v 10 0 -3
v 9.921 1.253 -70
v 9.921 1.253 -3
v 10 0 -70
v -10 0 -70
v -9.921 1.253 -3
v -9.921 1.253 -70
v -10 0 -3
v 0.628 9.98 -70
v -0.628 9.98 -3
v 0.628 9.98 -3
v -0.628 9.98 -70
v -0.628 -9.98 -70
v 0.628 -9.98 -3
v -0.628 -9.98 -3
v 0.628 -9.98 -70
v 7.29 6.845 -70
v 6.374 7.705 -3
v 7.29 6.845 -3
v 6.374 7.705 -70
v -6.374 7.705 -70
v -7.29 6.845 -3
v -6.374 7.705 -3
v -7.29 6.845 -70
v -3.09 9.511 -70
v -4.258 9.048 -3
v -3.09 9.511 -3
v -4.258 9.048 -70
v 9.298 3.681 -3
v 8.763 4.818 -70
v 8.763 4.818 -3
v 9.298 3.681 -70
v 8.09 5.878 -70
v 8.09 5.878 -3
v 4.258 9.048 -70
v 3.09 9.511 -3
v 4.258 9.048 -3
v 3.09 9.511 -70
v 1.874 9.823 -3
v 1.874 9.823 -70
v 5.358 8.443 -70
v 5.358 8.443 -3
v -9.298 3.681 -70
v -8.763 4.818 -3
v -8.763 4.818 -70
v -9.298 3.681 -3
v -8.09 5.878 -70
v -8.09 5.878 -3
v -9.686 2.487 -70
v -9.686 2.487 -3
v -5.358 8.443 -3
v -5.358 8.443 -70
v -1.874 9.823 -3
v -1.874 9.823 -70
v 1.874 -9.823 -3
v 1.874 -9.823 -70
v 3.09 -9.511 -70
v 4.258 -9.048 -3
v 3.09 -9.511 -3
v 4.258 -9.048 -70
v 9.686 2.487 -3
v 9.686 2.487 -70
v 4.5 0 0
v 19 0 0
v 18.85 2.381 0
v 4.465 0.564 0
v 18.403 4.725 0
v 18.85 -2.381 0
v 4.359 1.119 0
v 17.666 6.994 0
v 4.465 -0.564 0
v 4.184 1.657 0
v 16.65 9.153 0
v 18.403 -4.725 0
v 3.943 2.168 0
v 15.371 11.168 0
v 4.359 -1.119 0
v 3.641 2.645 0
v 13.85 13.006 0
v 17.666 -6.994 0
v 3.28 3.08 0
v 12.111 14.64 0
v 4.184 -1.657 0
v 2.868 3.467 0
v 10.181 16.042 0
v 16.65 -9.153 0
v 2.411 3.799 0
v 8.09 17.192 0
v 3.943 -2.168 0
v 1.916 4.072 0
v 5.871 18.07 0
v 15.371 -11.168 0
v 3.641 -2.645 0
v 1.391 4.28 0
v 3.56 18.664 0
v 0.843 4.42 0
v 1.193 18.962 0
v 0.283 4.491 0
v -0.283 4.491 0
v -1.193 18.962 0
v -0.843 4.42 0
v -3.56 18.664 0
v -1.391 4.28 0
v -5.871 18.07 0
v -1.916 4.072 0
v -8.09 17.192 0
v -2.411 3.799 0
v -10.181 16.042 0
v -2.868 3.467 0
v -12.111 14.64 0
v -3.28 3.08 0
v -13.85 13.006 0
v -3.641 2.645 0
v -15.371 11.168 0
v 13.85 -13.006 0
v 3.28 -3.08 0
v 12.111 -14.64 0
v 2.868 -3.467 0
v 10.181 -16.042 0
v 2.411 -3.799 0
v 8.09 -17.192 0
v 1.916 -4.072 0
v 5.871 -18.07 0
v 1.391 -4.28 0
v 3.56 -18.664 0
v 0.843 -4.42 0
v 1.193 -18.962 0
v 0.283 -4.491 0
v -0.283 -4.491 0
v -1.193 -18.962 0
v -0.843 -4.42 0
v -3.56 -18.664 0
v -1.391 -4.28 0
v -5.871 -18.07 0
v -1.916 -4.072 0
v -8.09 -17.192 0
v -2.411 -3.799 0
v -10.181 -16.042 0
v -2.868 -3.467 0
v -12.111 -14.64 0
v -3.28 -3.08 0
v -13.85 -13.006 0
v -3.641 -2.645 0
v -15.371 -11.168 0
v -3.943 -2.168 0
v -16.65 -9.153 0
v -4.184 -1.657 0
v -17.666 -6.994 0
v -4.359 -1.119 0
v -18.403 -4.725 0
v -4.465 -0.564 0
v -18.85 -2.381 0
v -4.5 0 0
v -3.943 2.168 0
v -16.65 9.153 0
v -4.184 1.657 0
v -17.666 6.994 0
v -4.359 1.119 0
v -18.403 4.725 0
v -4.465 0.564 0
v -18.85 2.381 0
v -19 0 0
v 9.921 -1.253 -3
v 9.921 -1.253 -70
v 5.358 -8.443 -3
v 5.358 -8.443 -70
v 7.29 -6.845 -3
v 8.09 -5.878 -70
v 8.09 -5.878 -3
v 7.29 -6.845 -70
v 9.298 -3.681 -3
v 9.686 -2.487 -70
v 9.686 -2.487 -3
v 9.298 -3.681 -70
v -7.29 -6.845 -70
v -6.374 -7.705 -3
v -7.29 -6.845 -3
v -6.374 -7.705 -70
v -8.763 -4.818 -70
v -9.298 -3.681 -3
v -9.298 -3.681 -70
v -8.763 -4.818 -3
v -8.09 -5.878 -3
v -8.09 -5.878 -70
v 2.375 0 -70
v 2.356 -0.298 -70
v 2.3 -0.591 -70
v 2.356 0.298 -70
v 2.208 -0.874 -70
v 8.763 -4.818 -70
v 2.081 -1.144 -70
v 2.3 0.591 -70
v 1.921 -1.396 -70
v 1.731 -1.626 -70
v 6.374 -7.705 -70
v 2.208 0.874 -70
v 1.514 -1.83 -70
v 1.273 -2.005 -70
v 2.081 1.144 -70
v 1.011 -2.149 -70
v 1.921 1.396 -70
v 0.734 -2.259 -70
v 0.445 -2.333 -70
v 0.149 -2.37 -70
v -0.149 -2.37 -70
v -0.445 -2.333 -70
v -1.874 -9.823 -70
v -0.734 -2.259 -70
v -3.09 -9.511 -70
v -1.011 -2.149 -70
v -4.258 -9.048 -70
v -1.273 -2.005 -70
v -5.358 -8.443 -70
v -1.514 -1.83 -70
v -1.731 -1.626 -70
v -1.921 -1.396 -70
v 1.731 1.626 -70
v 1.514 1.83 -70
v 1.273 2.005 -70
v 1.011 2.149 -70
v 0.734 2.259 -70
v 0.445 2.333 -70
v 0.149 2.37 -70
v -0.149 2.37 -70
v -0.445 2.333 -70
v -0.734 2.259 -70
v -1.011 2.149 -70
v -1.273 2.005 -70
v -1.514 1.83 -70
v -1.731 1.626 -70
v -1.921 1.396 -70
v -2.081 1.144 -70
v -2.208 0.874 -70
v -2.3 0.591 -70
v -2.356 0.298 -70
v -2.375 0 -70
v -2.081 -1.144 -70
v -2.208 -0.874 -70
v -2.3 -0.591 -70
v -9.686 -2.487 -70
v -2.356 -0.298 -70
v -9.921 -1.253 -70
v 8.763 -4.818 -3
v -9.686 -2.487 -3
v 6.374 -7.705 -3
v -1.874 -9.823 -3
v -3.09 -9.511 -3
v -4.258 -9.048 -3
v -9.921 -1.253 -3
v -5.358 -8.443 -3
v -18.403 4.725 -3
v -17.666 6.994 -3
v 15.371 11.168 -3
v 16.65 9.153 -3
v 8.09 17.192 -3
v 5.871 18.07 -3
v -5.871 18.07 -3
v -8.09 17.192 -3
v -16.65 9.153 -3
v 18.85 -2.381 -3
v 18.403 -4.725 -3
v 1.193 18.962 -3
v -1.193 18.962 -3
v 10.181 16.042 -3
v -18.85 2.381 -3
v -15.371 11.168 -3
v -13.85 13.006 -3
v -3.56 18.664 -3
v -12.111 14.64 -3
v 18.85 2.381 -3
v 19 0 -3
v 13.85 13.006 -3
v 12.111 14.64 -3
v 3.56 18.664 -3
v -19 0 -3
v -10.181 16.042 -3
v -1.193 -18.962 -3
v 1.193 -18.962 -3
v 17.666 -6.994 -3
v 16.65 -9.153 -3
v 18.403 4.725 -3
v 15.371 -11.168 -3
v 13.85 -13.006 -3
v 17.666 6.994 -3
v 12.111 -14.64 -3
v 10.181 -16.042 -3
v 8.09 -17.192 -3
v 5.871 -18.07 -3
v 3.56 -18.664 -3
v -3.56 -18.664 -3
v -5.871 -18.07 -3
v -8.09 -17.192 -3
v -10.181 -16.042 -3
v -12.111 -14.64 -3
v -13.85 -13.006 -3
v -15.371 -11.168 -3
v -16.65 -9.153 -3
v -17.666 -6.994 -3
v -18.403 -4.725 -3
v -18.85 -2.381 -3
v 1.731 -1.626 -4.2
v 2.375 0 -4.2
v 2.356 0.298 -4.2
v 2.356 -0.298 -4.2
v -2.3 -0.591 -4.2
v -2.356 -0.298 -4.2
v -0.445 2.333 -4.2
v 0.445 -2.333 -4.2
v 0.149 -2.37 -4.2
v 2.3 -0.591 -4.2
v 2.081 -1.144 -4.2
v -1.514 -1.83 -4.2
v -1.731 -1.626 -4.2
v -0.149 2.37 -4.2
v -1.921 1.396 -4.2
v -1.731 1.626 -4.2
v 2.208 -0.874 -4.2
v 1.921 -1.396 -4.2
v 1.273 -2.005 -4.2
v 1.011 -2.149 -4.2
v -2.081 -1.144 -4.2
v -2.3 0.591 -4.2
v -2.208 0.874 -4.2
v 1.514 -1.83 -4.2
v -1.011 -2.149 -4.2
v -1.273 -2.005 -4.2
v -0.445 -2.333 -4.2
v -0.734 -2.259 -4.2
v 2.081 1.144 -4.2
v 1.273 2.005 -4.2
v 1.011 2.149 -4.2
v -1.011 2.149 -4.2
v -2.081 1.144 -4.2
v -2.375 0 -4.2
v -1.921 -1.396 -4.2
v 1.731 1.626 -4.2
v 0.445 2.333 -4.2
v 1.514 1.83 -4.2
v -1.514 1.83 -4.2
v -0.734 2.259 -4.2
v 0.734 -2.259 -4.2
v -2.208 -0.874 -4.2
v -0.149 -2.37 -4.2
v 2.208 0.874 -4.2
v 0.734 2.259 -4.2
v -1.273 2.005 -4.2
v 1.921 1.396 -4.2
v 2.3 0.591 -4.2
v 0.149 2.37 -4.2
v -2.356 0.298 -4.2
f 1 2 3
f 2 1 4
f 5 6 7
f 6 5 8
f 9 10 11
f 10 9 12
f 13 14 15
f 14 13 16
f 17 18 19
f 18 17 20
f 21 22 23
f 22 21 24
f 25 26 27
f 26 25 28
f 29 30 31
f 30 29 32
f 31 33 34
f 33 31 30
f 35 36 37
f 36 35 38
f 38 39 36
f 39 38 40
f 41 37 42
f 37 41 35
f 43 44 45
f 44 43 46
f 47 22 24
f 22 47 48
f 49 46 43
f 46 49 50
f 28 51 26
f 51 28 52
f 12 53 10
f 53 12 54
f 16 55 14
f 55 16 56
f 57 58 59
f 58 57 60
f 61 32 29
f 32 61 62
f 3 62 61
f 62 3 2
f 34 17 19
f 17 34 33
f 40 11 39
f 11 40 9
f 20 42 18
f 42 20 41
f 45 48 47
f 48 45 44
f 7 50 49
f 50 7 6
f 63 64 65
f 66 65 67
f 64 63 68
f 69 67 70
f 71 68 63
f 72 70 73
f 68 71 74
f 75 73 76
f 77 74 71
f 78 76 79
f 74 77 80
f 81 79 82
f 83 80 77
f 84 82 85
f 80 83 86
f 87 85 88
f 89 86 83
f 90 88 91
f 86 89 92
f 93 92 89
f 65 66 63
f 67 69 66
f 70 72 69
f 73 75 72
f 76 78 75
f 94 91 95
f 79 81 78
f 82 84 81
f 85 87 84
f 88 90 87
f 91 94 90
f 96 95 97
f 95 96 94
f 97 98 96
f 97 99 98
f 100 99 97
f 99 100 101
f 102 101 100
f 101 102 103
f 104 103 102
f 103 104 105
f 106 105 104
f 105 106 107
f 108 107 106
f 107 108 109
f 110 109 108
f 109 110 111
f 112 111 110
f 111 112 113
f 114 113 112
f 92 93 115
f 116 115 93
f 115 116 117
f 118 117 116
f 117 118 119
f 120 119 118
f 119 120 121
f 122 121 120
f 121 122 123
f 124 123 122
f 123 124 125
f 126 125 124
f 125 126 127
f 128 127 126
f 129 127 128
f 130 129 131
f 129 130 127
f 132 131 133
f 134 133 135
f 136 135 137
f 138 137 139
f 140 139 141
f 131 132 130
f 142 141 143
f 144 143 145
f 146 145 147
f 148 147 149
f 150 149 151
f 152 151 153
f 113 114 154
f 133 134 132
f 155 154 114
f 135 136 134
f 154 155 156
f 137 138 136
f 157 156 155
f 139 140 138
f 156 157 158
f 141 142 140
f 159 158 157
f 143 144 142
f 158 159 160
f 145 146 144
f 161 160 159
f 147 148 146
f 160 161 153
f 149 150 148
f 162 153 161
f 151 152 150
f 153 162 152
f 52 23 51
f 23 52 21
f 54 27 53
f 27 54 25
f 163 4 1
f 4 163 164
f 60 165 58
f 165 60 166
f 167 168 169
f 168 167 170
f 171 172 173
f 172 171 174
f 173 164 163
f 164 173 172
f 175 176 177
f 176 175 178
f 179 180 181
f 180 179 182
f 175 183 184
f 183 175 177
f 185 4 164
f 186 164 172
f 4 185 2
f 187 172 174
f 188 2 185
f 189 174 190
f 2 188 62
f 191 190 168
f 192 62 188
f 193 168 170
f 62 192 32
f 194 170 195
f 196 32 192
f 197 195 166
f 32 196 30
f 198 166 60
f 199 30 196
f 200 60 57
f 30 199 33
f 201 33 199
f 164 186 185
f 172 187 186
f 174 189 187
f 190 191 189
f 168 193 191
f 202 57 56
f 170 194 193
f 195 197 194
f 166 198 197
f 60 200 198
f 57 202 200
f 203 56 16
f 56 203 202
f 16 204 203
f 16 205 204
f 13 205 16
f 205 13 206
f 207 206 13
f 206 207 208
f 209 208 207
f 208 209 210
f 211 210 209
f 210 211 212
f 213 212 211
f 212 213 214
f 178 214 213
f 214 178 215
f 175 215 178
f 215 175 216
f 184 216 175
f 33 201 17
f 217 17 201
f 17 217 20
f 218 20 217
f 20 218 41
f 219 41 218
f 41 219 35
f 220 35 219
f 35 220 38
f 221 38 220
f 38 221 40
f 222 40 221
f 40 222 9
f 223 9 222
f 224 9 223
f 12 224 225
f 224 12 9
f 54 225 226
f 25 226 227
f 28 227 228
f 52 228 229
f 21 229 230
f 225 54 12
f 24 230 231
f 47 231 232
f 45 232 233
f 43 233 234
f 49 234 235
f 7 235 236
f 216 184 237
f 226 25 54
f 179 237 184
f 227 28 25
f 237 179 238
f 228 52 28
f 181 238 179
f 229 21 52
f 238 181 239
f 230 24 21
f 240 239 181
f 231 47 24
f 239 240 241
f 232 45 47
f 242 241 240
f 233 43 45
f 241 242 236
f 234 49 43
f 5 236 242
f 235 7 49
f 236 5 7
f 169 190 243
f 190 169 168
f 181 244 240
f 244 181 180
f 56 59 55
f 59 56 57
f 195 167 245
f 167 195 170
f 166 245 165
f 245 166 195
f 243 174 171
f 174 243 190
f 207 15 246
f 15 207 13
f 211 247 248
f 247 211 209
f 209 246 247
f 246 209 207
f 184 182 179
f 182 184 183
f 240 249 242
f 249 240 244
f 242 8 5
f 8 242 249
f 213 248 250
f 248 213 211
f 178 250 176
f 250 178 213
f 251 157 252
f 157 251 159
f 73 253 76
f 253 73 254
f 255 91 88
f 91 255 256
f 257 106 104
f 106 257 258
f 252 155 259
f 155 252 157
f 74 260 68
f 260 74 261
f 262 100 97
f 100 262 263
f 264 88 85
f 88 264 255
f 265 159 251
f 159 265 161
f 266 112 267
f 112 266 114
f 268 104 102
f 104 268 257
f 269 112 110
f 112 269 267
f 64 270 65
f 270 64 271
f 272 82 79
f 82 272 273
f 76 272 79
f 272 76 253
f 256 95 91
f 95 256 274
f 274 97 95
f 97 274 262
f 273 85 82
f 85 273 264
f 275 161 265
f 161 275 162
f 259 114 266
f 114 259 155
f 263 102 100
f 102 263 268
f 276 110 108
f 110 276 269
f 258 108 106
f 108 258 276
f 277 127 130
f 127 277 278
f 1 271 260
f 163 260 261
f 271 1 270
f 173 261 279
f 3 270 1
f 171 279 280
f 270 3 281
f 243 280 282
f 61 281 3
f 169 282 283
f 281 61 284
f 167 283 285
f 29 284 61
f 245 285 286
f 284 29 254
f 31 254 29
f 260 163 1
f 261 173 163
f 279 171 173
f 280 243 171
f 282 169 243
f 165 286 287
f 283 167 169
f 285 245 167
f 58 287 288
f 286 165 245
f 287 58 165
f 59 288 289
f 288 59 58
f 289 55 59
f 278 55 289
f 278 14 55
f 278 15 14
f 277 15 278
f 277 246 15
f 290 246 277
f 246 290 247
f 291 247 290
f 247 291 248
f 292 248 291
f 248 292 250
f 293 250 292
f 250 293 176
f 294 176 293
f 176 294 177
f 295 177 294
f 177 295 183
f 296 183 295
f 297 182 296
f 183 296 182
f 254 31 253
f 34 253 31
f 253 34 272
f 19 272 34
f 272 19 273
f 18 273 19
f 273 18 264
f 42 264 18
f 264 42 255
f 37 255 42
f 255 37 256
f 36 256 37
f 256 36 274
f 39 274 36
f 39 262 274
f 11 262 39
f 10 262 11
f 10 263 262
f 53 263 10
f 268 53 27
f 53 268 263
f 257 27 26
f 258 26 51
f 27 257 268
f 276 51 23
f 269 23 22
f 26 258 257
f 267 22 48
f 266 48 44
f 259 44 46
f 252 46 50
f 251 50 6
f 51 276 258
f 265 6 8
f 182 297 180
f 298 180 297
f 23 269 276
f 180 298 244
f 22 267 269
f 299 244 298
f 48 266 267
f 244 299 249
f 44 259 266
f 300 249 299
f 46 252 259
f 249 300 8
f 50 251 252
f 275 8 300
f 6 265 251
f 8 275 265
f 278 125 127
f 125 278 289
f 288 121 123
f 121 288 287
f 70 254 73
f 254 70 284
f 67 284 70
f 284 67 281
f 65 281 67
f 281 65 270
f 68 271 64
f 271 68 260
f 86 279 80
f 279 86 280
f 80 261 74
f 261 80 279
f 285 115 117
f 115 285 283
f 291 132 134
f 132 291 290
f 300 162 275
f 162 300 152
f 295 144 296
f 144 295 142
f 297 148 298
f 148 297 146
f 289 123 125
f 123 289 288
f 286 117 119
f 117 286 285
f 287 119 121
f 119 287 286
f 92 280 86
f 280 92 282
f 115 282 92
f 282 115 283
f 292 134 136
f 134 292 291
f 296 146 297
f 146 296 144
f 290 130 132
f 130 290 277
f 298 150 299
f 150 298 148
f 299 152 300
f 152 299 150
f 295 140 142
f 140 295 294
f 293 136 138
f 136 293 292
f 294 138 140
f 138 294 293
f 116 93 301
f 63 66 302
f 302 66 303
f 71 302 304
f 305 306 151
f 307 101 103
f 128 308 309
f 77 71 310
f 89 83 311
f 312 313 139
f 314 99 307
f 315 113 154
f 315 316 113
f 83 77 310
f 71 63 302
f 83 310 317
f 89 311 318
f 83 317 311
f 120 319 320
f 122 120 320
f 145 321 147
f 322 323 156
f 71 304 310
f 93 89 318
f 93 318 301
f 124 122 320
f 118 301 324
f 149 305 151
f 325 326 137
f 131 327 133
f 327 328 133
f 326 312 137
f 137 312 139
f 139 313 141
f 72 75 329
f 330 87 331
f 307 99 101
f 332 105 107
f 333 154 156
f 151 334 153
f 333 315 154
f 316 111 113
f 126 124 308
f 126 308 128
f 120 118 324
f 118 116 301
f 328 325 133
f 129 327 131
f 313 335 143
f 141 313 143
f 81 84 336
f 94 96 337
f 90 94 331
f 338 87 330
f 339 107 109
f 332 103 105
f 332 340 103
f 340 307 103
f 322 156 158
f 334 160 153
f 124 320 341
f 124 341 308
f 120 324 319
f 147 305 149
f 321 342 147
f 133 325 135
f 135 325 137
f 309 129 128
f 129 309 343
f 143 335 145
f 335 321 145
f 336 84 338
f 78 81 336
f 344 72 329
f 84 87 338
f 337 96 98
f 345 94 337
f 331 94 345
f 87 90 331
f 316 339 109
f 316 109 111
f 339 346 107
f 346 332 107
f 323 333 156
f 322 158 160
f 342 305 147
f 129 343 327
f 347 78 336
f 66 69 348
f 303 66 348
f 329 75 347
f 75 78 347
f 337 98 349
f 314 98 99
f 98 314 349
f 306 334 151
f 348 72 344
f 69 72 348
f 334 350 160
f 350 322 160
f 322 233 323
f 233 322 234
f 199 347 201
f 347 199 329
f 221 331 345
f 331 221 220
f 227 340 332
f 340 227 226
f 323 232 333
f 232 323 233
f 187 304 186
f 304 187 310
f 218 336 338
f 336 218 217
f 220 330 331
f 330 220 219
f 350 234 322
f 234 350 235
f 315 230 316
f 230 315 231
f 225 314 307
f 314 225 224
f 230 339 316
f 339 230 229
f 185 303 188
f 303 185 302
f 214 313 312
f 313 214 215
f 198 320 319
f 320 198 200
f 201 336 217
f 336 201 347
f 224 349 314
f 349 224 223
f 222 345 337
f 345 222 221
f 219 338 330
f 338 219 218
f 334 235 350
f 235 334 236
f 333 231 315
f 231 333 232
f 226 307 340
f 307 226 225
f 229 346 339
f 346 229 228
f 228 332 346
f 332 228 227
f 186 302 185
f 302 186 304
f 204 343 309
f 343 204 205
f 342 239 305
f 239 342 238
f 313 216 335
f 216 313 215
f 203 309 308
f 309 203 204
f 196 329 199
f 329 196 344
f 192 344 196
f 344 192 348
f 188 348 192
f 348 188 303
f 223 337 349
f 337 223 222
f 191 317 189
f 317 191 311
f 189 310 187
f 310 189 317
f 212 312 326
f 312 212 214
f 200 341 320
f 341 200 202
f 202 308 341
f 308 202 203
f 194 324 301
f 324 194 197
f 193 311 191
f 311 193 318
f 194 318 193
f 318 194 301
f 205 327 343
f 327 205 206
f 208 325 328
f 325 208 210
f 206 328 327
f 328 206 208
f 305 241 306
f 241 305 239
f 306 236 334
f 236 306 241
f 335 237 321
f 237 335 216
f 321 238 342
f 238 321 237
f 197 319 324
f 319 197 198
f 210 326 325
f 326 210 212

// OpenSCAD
$fn = 50;


difference() {
	union() {
		translate(v = [0, 0, -70.0000000000]) {
			cylinder(h = 70, r = 10.0000000000);
		}
		translate(v = [0, 0, -3.0000000000]) {
			cylinder(h = 3, r = 19.0000000000);
		}
	}
	union() {
		translate(v = [0, 0, 0]) {
			rotate(a = [0, 0, 0]) {
				difference() {
					union() {
						#translate(v = [0, 0, -70.0000000000]) {
							cylinder(h = 70, r = 2.2500000000);
						}
						#translate(v = [0, 0, -4.2000000000]) {
							cylinder(h = 4.2000000000, r1 = 2.3750000000, r2 = 4.5000000000);
						}
						#translate(v = [0, 0, -70.0000000000]) {
							cylinder(h = 70, r = 2.3750000000);
						}
						#translate(v = [0, 0, -70.0000000000]) {
							cylinder(h = 70, r = 2.2500000000);
						}
					}
					union();
				}
			}
		}
	}
}
